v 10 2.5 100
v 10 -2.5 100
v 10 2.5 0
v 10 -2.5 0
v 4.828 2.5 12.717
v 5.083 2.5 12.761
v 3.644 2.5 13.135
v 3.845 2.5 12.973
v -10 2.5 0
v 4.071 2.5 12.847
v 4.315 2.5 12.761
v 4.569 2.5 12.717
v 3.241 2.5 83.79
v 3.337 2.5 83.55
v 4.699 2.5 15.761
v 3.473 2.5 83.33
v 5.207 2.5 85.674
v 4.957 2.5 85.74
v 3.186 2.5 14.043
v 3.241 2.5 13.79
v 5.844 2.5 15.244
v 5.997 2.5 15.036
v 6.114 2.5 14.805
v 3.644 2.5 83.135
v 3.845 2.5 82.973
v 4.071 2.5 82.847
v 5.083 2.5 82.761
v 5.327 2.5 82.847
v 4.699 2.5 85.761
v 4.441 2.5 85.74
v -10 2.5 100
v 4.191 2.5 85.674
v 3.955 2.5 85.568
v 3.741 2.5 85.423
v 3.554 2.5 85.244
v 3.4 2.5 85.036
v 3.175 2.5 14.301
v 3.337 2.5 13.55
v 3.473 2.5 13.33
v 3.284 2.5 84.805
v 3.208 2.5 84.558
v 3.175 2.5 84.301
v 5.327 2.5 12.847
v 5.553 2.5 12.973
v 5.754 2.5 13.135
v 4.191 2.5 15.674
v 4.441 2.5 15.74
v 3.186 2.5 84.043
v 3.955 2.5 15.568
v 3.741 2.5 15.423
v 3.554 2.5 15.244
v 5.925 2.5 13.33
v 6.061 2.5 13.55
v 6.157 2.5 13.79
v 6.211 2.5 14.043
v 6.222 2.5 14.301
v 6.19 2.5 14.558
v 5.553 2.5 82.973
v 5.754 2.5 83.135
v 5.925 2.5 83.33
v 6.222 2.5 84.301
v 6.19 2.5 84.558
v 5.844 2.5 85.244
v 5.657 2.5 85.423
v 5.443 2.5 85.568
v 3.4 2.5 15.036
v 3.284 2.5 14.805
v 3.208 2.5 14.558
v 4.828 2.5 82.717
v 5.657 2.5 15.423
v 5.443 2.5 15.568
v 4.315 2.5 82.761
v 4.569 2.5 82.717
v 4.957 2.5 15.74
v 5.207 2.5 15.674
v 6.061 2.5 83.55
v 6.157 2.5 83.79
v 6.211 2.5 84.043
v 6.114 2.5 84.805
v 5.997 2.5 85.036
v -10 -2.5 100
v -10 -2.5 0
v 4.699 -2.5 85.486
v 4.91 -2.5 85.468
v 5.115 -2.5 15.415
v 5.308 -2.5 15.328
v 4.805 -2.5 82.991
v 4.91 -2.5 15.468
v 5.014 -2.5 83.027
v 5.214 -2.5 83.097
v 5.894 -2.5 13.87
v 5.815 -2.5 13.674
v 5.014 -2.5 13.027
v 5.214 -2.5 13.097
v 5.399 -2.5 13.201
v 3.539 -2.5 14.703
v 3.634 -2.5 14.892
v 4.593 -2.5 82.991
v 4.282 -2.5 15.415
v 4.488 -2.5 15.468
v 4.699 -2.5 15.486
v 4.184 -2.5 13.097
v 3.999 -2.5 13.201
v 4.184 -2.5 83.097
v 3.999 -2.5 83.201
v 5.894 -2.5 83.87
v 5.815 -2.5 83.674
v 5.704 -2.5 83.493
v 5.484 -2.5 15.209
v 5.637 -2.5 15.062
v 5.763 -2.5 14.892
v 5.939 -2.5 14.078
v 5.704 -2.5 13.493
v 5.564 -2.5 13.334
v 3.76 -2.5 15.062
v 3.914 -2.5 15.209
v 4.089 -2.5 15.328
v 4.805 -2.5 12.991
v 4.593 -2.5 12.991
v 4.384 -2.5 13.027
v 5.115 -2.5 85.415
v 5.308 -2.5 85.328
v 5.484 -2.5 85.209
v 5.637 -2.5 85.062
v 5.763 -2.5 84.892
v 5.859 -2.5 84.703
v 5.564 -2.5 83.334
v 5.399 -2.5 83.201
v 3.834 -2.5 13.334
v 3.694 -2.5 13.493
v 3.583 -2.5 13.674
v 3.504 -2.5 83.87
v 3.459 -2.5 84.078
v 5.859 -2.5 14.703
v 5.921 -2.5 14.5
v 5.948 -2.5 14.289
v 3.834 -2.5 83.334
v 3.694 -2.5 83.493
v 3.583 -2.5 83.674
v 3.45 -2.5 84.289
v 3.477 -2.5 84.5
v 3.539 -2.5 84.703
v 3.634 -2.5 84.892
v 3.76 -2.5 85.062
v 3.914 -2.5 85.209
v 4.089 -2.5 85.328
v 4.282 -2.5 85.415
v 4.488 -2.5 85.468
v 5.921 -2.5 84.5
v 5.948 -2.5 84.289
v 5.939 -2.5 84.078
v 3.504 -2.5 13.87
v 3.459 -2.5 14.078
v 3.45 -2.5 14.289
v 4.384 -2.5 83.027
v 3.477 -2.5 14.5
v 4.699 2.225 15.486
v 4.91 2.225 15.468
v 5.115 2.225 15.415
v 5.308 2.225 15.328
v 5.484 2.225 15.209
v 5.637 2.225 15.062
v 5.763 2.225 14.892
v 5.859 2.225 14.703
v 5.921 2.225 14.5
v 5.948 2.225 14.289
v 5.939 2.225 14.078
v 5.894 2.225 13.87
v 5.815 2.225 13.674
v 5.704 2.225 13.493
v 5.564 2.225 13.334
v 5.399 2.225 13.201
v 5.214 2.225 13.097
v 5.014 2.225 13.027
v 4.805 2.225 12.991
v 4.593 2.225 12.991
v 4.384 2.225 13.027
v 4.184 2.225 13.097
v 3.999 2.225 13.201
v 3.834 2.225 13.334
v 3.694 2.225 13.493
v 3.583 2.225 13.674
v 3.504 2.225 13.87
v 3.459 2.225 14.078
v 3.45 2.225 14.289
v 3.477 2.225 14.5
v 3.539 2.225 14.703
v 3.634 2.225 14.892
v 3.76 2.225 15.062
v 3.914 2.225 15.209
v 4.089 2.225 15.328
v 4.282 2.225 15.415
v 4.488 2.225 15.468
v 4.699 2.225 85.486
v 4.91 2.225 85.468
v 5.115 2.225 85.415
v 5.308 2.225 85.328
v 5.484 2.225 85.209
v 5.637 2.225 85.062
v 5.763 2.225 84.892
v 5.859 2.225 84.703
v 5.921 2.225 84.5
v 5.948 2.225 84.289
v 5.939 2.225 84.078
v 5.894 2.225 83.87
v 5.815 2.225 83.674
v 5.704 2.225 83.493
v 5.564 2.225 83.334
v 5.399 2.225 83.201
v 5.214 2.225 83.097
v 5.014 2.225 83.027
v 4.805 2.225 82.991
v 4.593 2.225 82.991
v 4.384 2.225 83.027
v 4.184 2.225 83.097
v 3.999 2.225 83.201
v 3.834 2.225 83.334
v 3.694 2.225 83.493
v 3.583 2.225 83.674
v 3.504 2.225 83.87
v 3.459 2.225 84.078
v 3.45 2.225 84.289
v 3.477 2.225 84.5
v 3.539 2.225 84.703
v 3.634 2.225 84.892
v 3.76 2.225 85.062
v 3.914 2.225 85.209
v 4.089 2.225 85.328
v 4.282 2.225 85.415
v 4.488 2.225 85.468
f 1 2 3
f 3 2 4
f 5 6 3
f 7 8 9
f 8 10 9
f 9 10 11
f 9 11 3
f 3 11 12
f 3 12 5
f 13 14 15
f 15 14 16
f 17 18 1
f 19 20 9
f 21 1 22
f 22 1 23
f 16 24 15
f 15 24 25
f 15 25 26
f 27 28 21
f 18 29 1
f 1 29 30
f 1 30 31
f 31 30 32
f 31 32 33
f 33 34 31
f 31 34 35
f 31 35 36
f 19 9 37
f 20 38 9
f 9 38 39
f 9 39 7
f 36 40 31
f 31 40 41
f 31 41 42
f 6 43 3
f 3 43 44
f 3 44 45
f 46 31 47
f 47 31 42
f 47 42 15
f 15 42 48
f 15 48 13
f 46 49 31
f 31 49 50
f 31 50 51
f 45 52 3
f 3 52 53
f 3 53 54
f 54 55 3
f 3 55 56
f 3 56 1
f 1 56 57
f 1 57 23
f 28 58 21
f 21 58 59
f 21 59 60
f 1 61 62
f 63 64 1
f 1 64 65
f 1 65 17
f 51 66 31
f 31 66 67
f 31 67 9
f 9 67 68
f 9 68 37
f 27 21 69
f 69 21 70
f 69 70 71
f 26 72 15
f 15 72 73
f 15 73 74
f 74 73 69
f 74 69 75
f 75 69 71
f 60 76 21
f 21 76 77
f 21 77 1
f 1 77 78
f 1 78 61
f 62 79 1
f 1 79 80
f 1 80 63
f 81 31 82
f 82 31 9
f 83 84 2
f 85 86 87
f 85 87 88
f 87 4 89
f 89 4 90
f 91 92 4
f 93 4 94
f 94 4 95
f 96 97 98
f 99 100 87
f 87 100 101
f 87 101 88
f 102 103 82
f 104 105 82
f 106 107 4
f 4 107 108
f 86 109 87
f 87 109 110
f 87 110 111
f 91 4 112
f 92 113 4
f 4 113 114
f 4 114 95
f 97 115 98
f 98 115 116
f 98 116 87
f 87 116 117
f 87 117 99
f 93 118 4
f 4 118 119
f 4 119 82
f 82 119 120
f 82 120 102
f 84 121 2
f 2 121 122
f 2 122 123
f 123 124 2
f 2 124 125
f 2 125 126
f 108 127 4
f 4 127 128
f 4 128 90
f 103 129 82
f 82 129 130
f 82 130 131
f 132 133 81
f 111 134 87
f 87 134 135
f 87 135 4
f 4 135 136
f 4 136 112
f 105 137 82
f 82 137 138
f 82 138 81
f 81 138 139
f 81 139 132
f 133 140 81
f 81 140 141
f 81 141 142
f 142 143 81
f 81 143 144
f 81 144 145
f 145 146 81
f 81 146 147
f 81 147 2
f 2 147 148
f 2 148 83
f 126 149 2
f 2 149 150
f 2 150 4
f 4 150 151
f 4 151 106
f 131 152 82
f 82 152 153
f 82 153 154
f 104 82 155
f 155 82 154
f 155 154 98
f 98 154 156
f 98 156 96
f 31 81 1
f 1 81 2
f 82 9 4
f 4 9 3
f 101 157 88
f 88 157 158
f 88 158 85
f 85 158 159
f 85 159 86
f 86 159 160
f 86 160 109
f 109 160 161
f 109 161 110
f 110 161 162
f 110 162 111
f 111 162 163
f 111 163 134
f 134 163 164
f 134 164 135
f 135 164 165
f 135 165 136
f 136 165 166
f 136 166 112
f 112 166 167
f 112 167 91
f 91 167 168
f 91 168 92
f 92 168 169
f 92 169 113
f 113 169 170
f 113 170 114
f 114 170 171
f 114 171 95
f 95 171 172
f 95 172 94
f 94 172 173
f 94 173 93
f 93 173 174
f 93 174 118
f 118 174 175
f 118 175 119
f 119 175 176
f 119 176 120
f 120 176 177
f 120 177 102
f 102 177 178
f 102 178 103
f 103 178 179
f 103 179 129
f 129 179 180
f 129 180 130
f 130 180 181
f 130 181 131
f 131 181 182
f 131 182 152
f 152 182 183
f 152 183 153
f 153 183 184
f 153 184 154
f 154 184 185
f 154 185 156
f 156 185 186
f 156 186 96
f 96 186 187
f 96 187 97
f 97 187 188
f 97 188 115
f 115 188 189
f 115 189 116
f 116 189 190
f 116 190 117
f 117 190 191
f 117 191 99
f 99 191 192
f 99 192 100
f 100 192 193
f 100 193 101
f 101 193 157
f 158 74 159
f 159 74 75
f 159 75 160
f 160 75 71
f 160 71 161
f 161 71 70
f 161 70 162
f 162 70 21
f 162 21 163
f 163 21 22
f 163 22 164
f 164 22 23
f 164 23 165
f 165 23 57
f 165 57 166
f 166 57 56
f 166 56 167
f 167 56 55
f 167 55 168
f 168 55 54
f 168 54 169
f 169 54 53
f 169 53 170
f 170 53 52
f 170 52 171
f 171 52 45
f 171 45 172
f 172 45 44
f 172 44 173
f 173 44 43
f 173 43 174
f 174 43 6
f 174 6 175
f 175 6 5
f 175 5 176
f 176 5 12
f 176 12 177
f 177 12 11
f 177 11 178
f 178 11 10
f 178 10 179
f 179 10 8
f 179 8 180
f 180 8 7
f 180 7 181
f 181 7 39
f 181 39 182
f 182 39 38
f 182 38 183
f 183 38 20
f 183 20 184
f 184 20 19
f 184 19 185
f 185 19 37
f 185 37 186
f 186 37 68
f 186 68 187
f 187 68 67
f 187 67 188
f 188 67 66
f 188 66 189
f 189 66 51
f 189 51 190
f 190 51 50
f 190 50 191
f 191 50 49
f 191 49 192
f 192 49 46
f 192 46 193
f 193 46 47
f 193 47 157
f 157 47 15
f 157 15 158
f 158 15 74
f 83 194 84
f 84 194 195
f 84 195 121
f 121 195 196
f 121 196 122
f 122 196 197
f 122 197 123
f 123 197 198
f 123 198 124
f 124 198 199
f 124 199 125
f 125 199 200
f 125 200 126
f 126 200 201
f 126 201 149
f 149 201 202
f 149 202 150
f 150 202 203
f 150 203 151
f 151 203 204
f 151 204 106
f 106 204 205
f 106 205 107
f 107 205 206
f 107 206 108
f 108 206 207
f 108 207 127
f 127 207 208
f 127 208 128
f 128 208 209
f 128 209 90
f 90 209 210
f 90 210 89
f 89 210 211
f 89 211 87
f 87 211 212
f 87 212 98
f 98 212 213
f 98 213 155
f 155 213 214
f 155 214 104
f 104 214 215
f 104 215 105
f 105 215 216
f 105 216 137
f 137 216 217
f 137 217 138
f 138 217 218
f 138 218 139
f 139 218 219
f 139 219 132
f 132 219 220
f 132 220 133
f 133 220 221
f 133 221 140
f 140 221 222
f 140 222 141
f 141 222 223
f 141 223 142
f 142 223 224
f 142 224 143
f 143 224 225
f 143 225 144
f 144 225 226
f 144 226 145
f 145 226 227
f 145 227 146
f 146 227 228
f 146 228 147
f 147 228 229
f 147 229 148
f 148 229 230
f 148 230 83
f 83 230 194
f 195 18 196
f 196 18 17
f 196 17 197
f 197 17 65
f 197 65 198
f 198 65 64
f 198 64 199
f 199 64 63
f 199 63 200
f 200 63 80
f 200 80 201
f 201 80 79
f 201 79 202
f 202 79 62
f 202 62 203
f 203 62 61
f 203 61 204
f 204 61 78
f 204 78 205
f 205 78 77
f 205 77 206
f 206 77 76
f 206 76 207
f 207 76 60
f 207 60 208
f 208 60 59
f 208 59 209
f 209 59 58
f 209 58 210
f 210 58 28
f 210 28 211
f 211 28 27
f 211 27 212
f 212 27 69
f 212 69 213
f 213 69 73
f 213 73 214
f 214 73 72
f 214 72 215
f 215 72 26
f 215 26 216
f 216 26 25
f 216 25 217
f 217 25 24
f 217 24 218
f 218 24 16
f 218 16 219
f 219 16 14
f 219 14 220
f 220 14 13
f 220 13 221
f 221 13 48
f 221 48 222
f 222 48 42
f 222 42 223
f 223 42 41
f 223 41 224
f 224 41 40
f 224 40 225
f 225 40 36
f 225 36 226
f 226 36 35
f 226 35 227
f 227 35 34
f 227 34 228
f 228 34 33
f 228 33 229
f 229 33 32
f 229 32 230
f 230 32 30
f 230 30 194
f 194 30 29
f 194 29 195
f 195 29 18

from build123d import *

# Parameters (mm, degrees)
SKETCH1_W                   = 20
SKETCH1_H                   = 5
BOSS_EXTRUDE1_DEPTH         = 100
M3_TAPPED_HOLE2_D           = 2.5
M3_TAPPED_HOLE2_CSINK_D     = 3.05
M3_TAPPED_HOLE2_CSINK_ANGLE = 90
LPATTERN1_COUNT             = 2
LPATTERN1_PITCH             = 70


with BuildPart() as part:
    # Sketch1 → Boss-Extrude1 (new body)
    with BuildSketch(Plane.XY):
        Rectangle(SKETCH1_W, SKETCH1_H)
    extrude(amount=BOSS_EXTRUDE1_DEPTH)

    # M3 Tapped Hole2 (through all)
    with Locations(Plane(origin=(0, 2.5, 0), x_dir=(1, 0, 0), z_dir=(0, 1, 0))):
        with Locations((4.698821008, -14.236441586)):
            m3_tapped_hole2 = CounterSinkHole(M3_TAPPED_HOLE2_D / 2, M3_TAPPED_HOLE2_CSINK_D / 2, counter_sink_angle=M3_TAPPED_HOLE2_CSINK_ANGLE)

    # LPattern1: M3 Tapped Hole2 ×2
    with Locations(*[(0, 0, i * LPATTERN1_PITCH) for i in range(1, LPATTERN1_COUNT)]):
        add(m3_tapped_hole2, mode=Mode.SUBTRACT)


solid = part.part
